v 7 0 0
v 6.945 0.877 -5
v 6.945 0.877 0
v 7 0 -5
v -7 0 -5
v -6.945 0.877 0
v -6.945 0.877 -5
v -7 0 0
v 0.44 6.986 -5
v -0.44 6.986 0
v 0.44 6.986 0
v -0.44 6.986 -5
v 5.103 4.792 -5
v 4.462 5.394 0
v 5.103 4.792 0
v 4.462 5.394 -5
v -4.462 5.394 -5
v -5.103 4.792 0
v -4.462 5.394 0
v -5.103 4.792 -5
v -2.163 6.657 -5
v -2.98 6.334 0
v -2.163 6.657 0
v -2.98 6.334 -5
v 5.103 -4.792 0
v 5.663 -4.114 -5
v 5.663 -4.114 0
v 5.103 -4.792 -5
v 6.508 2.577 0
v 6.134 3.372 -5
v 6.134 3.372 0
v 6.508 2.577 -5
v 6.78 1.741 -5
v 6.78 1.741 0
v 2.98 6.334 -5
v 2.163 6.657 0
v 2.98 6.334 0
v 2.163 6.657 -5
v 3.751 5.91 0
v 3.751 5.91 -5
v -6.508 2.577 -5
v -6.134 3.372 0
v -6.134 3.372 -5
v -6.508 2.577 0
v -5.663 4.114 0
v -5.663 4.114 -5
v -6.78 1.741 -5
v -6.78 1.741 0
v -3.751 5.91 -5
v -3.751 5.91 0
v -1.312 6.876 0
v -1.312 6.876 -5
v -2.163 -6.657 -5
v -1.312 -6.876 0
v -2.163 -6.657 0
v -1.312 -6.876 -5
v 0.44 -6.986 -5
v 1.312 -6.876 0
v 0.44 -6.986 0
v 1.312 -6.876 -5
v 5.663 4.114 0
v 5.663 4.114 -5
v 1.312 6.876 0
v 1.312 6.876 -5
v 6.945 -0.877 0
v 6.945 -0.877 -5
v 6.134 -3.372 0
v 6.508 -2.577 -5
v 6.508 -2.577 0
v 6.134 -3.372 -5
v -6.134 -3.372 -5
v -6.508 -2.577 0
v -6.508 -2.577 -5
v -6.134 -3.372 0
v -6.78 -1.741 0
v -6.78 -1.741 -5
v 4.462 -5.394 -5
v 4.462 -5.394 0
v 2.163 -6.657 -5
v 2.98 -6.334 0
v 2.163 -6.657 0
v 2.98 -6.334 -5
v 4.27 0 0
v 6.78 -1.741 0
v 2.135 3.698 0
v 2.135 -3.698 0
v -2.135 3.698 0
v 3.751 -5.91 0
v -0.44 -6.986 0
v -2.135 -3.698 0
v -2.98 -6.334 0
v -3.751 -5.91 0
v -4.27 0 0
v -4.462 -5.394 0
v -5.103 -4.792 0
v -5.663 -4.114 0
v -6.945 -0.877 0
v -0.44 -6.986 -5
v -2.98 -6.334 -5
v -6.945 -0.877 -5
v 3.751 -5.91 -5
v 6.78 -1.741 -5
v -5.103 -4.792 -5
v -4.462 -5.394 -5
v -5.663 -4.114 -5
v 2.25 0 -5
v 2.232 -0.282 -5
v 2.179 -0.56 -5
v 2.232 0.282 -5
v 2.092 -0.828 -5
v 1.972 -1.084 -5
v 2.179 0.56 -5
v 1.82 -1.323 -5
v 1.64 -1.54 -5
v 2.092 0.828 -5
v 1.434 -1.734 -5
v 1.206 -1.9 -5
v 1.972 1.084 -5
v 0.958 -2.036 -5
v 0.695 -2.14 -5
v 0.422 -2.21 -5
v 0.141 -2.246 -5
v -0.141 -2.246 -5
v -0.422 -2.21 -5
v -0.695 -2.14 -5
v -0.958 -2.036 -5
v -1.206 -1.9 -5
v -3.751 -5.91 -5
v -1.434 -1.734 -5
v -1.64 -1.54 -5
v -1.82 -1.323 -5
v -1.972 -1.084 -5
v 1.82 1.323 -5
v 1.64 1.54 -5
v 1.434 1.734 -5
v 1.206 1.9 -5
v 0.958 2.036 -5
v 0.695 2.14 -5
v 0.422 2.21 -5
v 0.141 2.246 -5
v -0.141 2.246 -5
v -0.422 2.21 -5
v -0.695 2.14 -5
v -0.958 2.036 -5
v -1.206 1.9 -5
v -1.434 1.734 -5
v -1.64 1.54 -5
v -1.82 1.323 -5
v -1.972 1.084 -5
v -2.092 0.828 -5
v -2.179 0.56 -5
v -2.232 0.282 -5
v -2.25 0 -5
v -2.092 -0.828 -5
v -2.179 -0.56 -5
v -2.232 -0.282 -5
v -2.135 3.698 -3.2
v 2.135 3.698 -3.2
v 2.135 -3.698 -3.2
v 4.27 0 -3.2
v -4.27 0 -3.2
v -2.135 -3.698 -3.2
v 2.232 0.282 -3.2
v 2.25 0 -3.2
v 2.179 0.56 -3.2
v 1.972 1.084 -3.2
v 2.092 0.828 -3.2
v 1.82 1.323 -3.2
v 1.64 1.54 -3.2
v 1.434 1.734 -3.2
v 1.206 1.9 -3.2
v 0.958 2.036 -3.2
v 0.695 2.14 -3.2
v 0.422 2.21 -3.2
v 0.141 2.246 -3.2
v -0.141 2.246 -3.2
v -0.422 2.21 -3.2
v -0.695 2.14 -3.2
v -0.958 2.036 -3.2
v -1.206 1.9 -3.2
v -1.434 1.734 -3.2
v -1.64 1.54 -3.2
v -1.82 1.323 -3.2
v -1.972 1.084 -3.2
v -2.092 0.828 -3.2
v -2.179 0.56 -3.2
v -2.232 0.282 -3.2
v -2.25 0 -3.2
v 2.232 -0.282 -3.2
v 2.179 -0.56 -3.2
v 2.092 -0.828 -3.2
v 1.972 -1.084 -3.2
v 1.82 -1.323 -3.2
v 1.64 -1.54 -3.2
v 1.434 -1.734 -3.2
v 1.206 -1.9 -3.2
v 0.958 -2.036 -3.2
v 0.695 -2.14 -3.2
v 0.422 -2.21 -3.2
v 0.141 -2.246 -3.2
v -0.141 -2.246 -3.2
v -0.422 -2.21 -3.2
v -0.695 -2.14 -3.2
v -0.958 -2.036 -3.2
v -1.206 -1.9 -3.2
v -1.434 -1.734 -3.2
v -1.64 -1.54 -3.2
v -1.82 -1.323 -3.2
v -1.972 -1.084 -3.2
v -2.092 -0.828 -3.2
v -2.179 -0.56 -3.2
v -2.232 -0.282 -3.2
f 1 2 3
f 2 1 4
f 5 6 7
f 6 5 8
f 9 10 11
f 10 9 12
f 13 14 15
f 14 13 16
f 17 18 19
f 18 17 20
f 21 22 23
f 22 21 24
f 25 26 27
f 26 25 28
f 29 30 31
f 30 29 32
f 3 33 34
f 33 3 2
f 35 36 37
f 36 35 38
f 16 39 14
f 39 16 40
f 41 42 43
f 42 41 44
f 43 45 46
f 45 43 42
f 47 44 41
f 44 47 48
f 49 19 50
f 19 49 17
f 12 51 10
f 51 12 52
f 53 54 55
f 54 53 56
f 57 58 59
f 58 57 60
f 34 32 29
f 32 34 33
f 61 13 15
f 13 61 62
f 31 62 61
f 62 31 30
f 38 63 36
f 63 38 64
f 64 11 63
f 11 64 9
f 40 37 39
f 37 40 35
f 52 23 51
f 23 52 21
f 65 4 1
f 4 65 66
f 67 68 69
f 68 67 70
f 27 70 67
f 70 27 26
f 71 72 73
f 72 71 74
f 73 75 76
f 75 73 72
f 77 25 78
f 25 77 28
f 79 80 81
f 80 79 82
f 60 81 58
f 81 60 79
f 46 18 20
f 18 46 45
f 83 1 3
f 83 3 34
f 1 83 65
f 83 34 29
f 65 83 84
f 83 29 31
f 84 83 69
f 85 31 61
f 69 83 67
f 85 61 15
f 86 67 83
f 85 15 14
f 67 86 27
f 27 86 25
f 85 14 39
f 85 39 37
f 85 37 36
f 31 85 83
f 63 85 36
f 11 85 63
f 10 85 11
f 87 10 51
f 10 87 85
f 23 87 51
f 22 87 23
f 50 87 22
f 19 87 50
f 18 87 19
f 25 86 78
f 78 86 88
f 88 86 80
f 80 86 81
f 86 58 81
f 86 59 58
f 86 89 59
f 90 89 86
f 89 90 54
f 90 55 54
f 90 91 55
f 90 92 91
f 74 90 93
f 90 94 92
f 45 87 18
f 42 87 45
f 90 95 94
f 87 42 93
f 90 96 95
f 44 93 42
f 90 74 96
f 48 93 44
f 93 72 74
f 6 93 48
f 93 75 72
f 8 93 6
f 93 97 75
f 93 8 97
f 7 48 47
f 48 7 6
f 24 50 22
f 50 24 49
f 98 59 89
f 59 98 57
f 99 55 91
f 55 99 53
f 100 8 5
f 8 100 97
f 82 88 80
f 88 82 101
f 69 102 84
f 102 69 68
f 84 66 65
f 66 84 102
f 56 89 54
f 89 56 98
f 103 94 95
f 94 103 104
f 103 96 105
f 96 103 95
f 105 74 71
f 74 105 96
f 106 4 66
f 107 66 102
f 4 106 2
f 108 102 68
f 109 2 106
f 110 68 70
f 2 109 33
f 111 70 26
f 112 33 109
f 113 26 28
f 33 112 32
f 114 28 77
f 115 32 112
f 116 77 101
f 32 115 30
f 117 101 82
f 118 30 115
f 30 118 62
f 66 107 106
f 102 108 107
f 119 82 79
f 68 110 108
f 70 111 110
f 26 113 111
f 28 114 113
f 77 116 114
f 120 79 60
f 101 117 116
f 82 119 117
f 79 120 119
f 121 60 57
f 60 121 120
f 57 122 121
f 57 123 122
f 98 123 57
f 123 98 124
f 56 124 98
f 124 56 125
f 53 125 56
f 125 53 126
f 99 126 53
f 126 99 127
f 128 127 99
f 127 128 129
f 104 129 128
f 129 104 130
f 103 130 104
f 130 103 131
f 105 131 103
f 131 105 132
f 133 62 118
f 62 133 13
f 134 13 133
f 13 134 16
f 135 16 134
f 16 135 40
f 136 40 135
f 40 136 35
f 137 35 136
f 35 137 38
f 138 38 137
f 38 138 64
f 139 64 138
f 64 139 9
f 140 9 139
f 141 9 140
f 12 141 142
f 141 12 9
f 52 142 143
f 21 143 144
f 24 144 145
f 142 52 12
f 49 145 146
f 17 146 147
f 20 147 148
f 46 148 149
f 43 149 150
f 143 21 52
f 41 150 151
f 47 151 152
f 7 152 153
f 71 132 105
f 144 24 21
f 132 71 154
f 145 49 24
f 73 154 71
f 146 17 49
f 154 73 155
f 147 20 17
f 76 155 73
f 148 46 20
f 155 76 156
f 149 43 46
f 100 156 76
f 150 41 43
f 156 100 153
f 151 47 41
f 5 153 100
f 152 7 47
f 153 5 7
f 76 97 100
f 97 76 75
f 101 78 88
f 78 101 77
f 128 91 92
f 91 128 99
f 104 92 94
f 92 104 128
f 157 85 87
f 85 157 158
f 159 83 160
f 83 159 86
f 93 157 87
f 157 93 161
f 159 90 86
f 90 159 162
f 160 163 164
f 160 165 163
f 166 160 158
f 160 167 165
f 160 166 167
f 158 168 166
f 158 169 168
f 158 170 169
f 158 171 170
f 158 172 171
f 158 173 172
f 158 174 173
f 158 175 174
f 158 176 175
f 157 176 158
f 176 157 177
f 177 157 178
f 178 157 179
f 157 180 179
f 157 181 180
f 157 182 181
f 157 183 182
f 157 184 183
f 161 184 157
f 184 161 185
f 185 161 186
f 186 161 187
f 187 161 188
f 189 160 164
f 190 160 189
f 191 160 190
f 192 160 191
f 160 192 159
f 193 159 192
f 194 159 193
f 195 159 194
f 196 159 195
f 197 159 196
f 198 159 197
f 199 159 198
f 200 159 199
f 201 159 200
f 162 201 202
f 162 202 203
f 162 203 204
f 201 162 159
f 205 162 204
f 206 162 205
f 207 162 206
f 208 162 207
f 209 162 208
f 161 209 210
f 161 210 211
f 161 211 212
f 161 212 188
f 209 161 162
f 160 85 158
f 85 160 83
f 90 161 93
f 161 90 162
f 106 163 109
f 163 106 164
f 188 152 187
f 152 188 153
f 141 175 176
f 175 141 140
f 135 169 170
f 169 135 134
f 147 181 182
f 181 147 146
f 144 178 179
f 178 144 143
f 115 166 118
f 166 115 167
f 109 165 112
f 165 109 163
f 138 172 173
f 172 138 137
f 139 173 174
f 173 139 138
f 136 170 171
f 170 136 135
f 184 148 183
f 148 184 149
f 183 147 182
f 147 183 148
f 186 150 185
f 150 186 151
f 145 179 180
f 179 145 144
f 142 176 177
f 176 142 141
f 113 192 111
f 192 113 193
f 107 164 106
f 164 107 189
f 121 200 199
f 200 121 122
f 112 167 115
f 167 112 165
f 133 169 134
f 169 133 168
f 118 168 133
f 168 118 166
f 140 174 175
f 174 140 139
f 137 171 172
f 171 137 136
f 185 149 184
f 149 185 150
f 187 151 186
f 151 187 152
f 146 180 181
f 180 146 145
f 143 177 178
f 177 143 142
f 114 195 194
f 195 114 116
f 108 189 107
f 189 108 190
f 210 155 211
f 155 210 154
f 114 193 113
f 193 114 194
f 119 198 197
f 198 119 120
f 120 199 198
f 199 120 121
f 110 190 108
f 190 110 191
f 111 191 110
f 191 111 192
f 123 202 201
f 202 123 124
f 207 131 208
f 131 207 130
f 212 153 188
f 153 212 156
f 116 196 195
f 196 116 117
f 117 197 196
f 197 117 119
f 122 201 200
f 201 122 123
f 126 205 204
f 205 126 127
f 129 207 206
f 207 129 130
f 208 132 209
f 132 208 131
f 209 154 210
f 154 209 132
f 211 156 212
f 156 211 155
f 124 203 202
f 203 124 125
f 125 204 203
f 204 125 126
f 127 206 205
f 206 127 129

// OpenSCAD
$fn = 50;


difference() {
	union() {
		translate(v = [0, 0, -5.0000000000]) {
			cylinder(h = 5.0000000000, r = 7.0000000000);
		}
		translate(v = [0, 0, -3.5000000000]) {
			cylinder(h = 3.5000000000, r = 2.8750000000);
		}
	}
	union() {
		translate(v = [0, 0, 0]) {
			rotate(a = [0, 0, 0]) {
				difference() {
					union() {
						translate(v = [0, 0, -3.2000000000]) {
							#linear_extrude(height = 3.2000000000) {
								polygon(points = [[4.2698000000, 0.0000000000], [2.1349000000, 3.6977552691], [-2.1349000000, 3.6977552691], [-4.2698000000, 0.0000000000], [-2.1349000000, -3.6977552691], [2.1349000000, -3.6977552691]]);
							}
						}
					}
					union();
				}
			}
		}
		#translate(v = [0, 0, -100.0000000000]) {
			cylinder(h = 200, r = 2.2500000000);
		}
	}
}
